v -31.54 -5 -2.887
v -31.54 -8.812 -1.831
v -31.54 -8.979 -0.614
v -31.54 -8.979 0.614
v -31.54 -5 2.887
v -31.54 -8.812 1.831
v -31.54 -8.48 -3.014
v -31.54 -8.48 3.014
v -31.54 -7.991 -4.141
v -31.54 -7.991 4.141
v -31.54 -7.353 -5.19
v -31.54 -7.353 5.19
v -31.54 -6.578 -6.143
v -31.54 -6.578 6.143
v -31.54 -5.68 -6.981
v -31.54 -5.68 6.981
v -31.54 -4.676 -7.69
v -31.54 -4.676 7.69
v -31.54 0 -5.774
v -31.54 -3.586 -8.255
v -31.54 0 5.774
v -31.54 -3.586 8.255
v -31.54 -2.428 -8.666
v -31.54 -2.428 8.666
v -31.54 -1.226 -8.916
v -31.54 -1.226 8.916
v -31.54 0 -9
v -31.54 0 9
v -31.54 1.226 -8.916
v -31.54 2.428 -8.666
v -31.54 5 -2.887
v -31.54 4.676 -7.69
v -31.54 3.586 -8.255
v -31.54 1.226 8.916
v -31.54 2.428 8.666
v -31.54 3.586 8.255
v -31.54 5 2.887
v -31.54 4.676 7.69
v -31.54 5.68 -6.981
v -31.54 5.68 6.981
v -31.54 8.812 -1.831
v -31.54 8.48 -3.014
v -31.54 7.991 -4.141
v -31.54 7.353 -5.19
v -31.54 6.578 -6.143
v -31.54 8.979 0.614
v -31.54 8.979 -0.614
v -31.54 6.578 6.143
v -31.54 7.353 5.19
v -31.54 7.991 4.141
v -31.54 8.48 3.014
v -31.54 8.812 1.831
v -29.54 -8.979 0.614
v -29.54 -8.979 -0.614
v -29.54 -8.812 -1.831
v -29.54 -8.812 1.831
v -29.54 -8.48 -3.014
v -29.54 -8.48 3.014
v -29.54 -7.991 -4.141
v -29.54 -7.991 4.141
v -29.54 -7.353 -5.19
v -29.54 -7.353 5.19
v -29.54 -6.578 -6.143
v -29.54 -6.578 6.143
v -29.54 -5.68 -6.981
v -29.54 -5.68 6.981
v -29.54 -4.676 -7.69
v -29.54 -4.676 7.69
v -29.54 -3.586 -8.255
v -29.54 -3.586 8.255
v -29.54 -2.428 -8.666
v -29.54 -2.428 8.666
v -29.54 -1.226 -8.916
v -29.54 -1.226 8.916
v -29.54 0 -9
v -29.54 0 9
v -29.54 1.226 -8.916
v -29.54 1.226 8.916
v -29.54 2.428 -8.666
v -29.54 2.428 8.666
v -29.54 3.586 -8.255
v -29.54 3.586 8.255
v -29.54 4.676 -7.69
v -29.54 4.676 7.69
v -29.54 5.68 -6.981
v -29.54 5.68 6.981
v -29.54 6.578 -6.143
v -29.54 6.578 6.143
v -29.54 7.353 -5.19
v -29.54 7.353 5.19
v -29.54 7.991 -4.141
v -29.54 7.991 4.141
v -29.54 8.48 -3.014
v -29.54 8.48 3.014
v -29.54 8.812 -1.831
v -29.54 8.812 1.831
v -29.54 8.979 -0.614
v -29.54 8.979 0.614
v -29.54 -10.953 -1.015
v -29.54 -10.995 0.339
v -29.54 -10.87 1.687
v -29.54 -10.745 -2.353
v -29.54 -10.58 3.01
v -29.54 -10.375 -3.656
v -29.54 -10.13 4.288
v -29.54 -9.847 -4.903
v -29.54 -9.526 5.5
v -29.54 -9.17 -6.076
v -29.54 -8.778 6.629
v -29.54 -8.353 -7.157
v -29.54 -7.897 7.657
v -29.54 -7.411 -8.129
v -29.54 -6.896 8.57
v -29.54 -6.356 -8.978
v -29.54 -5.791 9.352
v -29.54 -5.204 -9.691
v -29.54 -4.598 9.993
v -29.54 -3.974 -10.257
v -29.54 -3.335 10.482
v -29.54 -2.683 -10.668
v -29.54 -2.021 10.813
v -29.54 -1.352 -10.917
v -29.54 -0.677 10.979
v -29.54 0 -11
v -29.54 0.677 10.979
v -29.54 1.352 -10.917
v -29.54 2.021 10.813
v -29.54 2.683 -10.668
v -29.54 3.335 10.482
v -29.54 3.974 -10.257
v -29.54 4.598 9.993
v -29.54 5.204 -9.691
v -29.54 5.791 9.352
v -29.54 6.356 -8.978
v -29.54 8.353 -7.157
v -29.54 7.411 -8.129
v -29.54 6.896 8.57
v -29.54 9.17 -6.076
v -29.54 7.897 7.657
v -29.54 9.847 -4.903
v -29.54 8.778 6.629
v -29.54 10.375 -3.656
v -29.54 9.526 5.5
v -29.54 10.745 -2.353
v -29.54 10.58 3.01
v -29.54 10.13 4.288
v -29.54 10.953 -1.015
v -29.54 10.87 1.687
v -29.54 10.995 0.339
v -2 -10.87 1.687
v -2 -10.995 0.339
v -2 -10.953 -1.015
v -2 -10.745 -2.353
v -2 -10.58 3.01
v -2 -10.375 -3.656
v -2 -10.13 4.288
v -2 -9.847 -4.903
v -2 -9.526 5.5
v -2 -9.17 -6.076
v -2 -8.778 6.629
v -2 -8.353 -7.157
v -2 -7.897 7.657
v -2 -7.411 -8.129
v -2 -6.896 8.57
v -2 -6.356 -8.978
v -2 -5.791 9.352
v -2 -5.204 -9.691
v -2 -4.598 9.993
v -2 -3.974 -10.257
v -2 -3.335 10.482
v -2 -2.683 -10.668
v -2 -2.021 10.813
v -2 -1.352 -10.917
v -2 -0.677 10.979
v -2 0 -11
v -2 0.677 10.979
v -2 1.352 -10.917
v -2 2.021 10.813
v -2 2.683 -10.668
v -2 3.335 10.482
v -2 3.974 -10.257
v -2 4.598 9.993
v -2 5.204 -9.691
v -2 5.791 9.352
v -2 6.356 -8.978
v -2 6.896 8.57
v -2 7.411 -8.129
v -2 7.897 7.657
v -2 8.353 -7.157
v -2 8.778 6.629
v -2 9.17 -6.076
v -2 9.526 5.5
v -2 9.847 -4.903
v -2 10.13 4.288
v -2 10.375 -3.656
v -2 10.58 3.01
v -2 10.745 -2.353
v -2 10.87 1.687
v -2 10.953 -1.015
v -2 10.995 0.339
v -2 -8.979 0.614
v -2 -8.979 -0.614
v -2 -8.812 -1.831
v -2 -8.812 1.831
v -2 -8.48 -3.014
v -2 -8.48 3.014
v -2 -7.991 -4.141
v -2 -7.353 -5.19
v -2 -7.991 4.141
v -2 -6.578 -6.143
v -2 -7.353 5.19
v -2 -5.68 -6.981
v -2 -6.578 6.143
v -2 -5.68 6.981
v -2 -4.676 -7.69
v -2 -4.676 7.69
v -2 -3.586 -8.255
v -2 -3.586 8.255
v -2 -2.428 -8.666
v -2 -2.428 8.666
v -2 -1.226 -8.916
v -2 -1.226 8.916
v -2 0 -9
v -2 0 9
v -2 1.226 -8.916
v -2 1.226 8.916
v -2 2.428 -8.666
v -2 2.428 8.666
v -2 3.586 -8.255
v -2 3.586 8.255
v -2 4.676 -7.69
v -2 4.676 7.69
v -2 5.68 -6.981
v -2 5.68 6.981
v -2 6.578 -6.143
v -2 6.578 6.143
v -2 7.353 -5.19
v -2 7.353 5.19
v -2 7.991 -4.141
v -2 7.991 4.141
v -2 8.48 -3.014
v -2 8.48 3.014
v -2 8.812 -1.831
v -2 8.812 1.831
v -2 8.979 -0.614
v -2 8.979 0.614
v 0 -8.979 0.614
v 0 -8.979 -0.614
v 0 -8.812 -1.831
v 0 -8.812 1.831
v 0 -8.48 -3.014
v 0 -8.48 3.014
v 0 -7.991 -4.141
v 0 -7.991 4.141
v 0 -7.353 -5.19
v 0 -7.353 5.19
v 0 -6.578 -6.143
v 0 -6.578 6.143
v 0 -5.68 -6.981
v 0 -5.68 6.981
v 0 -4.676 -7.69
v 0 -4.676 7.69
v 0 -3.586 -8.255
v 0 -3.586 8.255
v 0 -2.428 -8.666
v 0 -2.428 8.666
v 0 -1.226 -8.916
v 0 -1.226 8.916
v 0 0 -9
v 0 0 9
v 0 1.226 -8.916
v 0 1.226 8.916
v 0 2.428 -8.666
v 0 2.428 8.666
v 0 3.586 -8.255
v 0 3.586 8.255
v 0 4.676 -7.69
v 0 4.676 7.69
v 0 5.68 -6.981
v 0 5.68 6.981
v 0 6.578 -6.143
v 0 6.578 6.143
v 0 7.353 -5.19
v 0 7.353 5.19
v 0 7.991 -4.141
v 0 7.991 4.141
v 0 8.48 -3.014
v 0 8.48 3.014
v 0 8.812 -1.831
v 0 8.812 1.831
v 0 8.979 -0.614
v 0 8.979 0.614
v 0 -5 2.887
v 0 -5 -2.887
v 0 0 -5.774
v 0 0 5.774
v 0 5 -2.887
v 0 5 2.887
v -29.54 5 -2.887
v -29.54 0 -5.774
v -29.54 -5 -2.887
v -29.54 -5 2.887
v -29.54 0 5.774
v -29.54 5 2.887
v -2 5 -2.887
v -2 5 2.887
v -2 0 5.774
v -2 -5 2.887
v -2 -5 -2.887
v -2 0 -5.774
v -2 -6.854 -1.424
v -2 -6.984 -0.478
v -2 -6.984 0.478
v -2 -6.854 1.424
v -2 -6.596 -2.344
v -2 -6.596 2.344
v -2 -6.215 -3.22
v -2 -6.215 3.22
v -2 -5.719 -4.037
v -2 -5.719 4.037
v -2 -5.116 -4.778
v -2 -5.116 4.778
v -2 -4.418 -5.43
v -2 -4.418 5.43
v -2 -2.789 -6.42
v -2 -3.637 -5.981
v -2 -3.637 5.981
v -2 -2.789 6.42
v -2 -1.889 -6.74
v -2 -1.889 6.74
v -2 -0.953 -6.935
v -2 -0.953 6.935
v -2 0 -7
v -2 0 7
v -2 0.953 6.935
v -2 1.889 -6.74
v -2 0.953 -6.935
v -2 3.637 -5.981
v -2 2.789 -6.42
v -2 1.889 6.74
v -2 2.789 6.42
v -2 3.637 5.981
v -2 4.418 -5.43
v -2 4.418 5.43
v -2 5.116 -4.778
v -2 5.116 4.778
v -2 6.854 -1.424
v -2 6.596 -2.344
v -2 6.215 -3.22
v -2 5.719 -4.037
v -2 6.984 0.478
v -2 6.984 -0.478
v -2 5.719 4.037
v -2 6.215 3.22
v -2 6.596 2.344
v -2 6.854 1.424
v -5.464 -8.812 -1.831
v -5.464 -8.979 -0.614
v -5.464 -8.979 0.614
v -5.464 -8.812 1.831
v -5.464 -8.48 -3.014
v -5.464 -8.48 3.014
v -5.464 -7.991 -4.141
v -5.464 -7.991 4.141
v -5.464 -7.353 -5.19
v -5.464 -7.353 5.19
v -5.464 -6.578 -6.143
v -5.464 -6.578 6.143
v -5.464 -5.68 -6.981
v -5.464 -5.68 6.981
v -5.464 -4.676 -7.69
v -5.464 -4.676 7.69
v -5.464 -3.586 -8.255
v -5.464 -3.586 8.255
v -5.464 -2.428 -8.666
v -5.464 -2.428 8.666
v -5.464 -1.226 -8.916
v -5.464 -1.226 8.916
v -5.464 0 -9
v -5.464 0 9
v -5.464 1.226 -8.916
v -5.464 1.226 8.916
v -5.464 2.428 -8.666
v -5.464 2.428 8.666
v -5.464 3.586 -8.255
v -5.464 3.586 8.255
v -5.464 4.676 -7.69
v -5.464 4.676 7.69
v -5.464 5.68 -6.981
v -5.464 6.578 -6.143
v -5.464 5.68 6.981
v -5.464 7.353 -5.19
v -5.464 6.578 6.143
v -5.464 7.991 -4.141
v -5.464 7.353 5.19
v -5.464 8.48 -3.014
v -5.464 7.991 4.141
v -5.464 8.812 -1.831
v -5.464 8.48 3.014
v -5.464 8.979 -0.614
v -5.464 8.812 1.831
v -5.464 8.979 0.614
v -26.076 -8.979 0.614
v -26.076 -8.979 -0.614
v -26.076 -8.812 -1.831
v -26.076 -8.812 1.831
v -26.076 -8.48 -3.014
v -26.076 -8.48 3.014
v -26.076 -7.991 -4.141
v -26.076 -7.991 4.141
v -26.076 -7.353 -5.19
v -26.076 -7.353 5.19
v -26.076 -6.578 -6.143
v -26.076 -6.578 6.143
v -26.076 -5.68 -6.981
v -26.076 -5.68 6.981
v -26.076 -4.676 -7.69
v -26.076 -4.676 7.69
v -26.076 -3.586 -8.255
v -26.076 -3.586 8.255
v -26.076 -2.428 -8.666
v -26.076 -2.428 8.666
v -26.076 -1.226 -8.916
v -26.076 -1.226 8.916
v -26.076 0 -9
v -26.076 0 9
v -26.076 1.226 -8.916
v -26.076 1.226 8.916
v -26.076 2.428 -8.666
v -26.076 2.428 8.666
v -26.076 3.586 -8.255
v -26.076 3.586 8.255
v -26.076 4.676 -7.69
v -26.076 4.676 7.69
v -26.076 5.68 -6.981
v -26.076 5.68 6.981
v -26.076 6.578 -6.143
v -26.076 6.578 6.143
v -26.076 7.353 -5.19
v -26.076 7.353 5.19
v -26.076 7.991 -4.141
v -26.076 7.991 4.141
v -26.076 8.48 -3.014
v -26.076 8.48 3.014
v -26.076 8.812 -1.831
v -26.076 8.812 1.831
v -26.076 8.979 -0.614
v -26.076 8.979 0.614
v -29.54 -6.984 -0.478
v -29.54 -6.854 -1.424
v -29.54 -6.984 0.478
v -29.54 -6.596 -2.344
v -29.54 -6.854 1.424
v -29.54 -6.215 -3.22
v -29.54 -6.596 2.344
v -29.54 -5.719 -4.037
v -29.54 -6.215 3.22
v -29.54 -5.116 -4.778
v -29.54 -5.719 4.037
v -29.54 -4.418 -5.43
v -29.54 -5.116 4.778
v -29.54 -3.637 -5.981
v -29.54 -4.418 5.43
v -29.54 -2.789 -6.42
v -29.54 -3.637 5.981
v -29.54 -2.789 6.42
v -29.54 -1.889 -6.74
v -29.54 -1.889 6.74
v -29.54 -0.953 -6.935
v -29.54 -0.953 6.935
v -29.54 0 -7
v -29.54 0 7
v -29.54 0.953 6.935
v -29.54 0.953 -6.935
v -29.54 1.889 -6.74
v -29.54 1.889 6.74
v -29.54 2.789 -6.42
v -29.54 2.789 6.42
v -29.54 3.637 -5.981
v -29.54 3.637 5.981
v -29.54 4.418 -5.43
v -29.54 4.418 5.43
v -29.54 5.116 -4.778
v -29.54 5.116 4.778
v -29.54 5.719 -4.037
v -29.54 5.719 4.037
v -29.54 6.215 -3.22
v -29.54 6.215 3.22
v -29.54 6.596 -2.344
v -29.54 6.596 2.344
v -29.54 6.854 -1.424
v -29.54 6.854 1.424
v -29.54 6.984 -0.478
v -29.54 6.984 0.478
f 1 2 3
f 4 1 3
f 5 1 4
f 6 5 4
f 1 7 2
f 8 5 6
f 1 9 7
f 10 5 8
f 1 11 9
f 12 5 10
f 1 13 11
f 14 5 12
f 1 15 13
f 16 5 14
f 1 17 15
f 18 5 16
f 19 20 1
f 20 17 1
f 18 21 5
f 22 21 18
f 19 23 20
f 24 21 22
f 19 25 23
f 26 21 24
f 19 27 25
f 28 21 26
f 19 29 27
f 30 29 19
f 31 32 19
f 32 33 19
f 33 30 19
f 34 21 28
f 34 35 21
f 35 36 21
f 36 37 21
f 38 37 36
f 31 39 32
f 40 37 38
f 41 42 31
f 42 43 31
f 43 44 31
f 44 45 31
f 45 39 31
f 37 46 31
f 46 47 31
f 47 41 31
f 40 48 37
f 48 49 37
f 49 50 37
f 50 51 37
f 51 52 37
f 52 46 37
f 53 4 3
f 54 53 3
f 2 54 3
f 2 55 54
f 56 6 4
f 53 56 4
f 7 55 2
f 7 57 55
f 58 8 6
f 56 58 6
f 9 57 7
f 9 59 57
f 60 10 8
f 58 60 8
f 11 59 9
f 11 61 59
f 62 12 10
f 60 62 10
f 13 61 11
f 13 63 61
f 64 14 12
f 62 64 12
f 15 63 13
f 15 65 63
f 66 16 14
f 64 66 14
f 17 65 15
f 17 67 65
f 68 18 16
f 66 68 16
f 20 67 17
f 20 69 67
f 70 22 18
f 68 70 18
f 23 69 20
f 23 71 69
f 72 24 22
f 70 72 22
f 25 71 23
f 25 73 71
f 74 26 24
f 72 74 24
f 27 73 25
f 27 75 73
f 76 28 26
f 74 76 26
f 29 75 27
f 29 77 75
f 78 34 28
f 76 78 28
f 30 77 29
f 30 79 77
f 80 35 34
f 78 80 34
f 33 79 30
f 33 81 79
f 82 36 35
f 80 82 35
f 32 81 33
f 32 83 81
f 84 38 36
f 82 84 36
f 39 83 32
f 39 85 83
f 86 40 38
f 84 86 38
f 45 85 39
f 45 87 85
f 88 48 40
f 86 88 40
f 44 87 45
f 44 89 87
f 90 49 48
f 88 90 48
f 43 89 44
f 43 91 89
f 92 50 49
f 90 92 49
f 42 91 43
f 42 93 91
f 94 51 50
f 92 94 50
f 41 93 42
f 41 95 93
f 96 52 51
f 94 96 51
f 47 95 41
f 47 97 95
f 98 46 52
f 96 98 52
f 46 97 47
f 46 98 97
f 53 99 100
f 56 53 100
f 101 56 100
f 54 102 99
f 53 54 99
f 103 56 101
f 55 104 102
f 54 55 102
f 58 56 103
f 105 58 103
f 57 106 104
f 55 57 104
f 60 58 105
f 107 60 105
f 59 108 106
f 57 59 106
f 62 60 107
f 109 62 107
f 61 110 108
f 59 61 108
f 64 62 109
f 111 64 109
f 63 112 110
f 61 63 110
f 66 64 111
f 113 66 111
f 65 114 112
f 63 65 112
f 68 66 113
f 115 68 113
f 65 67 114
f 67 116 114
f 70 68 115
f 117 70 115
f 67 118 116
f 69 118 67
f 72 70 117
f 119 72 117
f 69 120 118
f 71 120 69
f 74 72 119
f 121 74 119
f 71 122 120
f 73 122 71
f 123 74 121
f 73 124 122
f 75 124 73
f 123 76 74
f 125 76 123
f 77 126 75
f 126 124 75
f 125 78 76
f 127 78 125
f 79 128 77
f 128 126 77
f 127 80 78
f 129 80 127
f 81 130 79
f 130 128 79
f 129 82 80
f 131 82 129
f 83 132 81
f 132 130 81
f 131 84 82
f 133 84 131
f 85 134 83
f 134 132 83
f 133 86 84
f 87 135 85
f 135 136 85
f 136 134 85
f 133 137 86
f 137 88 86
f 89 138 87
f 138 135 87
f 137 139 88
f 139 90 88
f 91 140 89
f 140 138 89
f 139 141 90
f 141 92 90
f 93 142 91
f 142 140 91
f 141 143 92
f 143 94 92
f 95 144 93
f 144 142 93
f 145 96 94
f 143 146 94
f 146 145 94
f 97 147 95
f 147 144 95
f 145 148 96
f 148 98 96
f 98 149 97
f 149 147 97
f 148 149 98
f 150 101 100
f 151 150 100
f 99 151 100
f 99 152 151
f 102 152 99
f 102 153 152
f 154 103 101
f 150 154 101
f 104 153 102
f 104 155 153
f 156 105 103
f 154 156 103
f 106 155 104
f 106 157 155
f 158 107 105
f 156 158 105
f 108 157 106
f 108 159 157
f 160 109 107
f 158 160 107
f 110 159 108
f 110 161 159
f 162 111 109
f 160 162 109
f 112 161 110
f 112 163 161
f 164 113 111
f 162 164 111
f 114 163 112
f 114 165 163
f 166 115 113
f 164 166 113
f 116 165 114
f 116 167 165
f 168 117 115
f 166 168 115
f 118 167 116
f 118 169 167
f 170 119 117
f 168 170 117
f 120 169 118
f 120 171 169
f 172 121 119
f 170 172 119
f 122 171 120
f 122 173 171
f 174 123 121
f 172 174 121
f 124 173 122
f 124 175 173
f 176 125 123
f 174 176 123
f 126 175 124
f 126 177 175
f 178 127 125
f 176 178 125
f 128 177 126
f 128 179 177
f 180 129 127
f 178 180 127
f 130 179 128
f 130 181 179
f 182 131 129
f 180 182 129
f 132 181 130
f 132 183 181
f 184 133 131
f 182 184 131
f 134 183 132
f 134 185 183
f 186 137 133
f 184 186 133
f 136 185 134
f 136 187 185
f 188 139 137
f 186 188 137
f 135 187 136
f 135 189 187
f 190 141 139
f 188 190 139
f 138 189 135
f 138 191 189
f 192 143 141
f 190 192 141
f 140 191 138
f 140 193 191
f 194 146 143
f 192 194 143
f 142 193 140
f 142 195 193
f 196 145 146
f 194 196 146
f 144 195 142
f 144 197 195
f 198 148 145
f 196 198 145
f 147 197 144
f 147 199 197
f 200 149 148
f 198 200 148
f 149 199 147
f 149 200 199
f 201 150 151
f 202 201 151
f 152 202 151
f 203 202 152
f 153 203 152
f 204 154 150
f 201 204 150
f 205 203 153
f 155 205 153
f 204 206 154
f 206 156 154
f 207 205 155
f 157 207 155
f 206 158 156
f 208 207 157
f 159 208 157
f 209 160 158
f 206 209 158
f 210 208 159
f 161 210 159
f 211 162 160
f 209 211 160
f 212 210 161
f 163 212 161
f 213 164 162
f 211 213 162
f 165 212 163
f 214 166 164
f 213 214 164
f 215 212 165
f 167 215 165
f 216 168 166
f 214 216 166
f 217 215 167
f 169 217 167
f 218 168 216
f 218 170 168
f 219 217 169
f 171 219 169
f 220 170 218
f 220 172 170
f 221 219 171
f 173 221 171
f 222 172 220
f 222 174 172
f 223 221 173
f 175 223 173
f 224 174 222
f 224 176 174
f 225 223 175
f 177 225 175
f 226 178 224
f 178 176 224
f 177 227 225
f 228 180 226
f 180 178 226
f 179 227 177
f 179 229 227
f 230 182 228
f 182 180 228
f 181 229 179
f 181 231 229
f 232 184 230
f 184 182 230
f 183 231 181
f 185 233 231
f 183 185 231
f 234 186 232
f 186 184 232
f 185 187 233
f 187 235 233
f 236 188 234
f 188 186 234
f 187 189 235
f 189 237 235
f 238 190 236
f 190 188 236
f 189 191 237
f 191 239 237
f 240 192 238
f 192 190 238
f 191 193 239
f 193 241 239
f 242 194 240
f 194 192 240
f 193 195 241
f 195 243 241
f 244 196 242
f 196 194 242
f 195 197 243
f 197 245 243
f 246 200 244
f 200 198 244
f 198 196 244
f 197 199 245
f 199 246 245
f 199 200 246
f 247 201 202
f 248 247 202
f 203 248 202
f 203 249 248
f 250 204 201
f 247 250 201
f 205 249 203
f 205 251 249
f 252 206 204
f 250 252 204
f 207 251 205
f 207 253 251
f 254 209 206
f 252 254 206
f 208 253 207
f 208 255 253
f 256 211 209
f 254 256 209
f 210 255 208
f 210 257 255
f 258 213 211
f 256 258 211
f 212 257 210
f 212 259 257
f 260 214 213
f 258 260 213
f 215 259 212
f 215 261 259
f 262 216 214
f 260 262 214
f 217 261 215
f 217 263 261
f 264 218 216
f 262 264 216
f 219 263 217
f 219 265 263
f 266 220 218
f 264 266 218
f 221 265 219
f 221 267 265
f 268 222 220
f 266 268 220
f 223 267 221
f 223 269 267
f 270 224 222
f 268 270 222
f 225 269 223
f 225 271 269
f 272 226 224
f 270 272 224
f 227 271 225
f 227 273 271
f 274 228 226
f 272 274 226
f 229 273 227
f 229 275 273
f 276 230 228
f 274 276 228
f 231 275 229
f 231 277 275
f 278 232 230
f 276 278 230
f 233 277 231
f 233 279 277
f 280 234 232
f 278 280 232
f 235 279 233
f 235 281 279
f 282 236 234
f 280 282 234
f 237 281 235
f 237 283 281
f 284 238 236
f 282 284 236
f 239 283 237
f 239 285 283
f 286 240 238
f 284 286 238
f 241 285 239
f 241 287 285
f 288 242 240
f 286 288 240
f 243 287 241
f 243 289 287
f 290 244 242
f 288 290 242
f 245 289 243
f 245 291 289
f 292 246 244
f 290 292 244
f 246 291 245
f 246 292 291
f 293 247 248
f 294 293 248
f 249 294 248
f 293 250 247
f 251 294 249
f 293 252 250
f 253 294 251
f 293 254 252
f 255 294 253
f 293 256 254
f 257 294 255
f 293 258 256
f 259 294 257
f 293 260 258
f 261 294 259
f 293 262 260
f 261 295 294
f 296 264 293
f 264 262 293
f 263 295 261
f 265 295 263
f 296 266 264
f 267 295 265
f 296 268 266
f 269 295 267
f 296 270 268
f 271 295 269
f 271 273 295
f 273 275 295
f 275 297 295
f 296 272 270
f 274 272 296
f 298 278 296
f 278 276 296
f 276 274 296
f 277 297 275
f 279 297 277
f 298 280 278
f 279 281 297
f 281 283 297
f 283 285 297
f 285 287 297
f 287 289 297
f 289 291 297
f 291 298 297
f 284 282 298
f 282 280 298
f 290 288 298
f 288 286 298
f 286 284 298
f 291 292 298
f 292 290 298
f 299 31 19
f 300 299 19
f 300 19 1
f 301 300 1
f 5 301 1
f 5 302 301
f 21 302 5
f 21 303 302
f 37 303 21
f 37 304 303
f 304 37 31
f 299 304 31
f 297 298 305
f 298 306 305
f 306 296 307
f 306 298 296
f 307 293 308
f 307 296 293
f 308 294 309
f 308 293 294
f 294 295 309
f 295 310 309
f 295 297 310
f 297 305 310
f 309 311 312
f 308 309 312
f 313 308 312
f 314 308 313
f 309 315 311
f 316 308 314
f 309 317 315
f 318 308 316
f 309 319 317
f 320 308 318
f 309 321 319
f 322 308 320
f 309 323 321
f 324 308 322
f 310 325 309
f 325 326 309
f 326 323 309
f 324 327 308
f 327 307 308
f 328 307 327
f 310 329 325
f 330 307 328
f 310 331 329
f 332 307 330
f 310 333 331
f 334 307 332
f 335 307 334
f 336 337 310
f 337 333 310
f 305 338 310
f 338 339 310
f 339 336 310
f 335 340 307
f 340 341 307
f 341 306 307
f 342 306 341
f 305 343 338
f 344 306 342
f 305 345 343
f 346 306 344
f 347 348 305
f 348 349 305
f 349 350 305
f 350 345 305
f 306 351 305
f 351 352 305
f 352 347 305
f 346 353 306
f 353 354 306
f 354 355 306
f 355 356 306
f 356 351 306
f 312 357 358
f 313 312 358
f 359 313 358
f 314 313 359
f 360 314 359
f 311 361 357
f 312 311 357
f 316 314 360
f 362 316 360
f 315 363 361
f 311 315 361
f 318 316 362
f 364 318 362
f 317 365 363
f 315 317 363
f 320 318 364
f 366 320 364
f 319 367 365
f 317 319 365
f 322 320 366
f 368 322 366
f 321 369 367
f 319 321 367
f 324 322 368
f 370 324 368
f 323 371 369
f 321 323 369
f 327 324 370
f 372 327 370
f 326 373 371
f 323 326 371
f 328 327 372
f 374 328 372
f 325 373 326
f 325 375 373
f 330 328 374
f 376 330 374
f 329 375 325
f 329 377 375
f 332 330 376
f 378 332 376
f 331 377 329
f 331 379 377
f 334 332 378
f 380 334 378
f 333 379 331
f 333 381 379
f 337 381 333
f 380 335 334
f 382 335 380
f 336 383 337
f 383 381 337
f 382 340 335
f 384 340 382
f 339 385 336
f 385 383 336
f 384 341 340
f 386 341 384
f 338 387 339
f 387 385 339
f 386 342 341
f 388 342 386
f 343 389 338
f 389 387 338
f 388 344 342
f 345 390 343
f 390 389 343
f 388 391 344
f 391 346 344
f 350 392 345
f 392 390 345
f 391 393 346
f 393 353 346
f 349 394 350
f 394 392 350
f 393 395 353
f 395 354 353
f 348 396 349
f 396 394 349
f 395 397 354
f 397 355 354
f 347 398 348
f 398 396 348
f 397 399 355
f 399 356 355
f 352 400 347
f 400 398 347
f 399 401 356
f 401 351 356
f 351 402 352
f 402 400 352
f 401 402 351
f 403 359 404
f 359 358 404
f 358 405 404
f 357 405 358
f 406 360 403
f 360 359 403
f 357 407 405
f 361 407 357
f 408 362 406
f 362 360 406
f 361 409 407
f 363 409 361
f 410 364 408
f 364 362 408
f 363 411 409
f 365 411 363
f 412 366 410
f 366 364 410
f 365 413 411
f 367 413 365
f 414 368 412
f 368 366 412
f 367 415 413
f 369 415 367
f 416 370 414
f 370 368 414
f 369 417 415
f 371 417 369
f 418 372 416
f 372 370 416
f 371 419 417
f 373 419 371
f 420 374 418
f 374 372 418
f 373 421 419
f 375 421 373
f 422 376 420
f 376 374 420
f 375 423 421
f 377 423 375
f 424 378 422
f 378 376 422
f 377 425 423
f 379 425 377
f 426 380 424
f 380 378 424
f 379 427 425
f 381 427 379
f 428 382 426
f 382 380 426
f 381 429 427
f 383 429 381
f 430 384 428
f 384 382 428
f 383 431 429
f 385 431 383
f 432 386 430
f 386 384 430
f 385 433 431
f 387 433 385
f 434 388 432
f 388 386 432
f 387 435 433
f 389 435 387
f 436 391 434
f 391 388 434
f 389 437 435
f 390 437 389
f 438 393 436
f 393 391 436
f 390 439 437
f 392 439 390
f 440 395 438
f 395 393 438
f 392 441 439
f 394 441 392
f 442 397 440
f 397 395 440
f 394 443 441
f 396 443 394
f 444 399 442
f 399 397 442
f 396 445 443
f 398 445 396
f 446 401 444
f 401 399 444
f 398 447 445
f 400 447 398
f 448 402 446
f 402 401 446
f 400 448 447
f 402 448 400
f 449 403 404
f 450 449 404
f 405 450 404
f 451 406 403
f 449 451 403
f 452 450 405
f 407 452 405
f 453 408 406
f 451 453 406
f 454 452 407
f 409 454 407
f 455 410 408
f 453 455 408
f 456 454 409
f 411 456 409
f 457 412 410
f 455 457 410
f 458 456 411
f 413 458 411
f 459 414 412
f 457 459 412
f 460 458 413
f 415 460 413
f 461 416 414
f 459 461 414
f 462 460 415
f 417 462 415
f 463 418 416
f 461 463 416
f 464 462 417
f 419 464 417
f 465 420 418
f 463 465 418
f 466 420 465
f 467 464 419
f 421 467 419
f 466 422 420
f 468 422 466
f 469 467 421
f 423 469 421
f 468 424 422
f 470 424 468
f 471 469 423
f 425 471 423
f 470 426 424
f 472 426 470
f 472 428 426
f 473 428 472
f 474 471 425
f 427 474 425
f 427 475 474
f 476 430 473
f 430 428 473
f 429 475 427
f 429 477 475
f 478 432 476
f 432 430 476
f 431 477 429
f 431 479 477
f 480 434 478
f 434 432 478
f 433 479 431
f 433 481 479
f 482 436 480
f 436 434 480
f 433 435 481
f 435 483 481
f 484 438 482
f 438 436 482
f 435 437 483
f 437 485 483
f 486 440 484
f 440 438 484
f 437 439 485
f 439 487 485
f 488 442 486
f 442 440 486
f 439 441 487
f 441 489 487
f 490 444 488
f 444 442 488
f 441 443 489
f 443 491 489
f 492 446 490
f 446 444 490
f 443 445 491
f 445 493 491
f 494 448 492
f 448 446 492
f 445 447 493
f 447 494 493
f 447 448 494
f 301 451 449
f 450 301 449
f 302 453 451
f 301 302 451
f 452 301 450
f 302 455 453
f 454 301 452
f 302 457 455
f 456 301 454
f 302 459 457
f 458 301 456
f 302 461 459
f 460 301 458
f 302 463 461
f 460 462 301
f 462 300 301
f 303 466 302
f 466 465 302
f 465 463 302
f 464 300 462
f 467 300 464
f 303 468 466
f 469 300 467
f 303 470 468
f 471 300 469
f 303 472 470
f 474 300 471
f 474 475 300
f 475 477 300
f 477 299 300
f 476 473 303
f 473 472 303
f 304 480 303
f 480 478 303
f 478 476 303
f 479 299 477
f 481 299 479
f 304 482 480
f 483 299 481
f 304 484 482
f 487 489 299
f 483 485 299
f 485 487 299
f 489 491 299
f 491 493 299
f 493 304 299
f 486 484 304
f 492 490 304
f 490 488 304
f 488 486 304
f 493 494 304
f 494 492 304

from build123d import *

# Parameters (mm, degrees)
CUT_EXTRUDE1_DEPTH = 36.167763648


with BuildPart() as part:
    # Sketch4 → Revolve2 (revolve)
    with BuildSketch(Plane.XY, mode=Mode.PRIVATE) as revolve2_sk:
        Polygon((-29.54, 11), (-2, 11), (-2, 9), (0, 9), (0, 7), (0, 0), (-2, 0), (-2, 7), (-5.464101615, 9), (-26.075898385, 9), (-29.54, 7), (-29.54, 0), (-31.54, 0), (-31.54, 7), (-31.54, 9), (-29.54, 9), align=None)
    revolve(revolve2_sk.sketch.rotate(Axis((0, 0, 0), (-1, 0, 0)), 90), axis=Axis((0, 0, 0), (-1, 0, 0)))

    # Sketch5 → Cut-Extrude1 (cut, through all)
    with BuildSketch(Plane.ZY.offset(31.54)):
        Polygon((-2.886751346, 5), (-5.773502692, 0), (-2.886751346, -5), (2.886751346, -5), (5.773502692, 0), (2.886751346, 5), align=None)
    extrude(amount=-CUT_EXTRUDE1_DEPTH, mode=Mode.SUBTRACT)


solid = part.part
